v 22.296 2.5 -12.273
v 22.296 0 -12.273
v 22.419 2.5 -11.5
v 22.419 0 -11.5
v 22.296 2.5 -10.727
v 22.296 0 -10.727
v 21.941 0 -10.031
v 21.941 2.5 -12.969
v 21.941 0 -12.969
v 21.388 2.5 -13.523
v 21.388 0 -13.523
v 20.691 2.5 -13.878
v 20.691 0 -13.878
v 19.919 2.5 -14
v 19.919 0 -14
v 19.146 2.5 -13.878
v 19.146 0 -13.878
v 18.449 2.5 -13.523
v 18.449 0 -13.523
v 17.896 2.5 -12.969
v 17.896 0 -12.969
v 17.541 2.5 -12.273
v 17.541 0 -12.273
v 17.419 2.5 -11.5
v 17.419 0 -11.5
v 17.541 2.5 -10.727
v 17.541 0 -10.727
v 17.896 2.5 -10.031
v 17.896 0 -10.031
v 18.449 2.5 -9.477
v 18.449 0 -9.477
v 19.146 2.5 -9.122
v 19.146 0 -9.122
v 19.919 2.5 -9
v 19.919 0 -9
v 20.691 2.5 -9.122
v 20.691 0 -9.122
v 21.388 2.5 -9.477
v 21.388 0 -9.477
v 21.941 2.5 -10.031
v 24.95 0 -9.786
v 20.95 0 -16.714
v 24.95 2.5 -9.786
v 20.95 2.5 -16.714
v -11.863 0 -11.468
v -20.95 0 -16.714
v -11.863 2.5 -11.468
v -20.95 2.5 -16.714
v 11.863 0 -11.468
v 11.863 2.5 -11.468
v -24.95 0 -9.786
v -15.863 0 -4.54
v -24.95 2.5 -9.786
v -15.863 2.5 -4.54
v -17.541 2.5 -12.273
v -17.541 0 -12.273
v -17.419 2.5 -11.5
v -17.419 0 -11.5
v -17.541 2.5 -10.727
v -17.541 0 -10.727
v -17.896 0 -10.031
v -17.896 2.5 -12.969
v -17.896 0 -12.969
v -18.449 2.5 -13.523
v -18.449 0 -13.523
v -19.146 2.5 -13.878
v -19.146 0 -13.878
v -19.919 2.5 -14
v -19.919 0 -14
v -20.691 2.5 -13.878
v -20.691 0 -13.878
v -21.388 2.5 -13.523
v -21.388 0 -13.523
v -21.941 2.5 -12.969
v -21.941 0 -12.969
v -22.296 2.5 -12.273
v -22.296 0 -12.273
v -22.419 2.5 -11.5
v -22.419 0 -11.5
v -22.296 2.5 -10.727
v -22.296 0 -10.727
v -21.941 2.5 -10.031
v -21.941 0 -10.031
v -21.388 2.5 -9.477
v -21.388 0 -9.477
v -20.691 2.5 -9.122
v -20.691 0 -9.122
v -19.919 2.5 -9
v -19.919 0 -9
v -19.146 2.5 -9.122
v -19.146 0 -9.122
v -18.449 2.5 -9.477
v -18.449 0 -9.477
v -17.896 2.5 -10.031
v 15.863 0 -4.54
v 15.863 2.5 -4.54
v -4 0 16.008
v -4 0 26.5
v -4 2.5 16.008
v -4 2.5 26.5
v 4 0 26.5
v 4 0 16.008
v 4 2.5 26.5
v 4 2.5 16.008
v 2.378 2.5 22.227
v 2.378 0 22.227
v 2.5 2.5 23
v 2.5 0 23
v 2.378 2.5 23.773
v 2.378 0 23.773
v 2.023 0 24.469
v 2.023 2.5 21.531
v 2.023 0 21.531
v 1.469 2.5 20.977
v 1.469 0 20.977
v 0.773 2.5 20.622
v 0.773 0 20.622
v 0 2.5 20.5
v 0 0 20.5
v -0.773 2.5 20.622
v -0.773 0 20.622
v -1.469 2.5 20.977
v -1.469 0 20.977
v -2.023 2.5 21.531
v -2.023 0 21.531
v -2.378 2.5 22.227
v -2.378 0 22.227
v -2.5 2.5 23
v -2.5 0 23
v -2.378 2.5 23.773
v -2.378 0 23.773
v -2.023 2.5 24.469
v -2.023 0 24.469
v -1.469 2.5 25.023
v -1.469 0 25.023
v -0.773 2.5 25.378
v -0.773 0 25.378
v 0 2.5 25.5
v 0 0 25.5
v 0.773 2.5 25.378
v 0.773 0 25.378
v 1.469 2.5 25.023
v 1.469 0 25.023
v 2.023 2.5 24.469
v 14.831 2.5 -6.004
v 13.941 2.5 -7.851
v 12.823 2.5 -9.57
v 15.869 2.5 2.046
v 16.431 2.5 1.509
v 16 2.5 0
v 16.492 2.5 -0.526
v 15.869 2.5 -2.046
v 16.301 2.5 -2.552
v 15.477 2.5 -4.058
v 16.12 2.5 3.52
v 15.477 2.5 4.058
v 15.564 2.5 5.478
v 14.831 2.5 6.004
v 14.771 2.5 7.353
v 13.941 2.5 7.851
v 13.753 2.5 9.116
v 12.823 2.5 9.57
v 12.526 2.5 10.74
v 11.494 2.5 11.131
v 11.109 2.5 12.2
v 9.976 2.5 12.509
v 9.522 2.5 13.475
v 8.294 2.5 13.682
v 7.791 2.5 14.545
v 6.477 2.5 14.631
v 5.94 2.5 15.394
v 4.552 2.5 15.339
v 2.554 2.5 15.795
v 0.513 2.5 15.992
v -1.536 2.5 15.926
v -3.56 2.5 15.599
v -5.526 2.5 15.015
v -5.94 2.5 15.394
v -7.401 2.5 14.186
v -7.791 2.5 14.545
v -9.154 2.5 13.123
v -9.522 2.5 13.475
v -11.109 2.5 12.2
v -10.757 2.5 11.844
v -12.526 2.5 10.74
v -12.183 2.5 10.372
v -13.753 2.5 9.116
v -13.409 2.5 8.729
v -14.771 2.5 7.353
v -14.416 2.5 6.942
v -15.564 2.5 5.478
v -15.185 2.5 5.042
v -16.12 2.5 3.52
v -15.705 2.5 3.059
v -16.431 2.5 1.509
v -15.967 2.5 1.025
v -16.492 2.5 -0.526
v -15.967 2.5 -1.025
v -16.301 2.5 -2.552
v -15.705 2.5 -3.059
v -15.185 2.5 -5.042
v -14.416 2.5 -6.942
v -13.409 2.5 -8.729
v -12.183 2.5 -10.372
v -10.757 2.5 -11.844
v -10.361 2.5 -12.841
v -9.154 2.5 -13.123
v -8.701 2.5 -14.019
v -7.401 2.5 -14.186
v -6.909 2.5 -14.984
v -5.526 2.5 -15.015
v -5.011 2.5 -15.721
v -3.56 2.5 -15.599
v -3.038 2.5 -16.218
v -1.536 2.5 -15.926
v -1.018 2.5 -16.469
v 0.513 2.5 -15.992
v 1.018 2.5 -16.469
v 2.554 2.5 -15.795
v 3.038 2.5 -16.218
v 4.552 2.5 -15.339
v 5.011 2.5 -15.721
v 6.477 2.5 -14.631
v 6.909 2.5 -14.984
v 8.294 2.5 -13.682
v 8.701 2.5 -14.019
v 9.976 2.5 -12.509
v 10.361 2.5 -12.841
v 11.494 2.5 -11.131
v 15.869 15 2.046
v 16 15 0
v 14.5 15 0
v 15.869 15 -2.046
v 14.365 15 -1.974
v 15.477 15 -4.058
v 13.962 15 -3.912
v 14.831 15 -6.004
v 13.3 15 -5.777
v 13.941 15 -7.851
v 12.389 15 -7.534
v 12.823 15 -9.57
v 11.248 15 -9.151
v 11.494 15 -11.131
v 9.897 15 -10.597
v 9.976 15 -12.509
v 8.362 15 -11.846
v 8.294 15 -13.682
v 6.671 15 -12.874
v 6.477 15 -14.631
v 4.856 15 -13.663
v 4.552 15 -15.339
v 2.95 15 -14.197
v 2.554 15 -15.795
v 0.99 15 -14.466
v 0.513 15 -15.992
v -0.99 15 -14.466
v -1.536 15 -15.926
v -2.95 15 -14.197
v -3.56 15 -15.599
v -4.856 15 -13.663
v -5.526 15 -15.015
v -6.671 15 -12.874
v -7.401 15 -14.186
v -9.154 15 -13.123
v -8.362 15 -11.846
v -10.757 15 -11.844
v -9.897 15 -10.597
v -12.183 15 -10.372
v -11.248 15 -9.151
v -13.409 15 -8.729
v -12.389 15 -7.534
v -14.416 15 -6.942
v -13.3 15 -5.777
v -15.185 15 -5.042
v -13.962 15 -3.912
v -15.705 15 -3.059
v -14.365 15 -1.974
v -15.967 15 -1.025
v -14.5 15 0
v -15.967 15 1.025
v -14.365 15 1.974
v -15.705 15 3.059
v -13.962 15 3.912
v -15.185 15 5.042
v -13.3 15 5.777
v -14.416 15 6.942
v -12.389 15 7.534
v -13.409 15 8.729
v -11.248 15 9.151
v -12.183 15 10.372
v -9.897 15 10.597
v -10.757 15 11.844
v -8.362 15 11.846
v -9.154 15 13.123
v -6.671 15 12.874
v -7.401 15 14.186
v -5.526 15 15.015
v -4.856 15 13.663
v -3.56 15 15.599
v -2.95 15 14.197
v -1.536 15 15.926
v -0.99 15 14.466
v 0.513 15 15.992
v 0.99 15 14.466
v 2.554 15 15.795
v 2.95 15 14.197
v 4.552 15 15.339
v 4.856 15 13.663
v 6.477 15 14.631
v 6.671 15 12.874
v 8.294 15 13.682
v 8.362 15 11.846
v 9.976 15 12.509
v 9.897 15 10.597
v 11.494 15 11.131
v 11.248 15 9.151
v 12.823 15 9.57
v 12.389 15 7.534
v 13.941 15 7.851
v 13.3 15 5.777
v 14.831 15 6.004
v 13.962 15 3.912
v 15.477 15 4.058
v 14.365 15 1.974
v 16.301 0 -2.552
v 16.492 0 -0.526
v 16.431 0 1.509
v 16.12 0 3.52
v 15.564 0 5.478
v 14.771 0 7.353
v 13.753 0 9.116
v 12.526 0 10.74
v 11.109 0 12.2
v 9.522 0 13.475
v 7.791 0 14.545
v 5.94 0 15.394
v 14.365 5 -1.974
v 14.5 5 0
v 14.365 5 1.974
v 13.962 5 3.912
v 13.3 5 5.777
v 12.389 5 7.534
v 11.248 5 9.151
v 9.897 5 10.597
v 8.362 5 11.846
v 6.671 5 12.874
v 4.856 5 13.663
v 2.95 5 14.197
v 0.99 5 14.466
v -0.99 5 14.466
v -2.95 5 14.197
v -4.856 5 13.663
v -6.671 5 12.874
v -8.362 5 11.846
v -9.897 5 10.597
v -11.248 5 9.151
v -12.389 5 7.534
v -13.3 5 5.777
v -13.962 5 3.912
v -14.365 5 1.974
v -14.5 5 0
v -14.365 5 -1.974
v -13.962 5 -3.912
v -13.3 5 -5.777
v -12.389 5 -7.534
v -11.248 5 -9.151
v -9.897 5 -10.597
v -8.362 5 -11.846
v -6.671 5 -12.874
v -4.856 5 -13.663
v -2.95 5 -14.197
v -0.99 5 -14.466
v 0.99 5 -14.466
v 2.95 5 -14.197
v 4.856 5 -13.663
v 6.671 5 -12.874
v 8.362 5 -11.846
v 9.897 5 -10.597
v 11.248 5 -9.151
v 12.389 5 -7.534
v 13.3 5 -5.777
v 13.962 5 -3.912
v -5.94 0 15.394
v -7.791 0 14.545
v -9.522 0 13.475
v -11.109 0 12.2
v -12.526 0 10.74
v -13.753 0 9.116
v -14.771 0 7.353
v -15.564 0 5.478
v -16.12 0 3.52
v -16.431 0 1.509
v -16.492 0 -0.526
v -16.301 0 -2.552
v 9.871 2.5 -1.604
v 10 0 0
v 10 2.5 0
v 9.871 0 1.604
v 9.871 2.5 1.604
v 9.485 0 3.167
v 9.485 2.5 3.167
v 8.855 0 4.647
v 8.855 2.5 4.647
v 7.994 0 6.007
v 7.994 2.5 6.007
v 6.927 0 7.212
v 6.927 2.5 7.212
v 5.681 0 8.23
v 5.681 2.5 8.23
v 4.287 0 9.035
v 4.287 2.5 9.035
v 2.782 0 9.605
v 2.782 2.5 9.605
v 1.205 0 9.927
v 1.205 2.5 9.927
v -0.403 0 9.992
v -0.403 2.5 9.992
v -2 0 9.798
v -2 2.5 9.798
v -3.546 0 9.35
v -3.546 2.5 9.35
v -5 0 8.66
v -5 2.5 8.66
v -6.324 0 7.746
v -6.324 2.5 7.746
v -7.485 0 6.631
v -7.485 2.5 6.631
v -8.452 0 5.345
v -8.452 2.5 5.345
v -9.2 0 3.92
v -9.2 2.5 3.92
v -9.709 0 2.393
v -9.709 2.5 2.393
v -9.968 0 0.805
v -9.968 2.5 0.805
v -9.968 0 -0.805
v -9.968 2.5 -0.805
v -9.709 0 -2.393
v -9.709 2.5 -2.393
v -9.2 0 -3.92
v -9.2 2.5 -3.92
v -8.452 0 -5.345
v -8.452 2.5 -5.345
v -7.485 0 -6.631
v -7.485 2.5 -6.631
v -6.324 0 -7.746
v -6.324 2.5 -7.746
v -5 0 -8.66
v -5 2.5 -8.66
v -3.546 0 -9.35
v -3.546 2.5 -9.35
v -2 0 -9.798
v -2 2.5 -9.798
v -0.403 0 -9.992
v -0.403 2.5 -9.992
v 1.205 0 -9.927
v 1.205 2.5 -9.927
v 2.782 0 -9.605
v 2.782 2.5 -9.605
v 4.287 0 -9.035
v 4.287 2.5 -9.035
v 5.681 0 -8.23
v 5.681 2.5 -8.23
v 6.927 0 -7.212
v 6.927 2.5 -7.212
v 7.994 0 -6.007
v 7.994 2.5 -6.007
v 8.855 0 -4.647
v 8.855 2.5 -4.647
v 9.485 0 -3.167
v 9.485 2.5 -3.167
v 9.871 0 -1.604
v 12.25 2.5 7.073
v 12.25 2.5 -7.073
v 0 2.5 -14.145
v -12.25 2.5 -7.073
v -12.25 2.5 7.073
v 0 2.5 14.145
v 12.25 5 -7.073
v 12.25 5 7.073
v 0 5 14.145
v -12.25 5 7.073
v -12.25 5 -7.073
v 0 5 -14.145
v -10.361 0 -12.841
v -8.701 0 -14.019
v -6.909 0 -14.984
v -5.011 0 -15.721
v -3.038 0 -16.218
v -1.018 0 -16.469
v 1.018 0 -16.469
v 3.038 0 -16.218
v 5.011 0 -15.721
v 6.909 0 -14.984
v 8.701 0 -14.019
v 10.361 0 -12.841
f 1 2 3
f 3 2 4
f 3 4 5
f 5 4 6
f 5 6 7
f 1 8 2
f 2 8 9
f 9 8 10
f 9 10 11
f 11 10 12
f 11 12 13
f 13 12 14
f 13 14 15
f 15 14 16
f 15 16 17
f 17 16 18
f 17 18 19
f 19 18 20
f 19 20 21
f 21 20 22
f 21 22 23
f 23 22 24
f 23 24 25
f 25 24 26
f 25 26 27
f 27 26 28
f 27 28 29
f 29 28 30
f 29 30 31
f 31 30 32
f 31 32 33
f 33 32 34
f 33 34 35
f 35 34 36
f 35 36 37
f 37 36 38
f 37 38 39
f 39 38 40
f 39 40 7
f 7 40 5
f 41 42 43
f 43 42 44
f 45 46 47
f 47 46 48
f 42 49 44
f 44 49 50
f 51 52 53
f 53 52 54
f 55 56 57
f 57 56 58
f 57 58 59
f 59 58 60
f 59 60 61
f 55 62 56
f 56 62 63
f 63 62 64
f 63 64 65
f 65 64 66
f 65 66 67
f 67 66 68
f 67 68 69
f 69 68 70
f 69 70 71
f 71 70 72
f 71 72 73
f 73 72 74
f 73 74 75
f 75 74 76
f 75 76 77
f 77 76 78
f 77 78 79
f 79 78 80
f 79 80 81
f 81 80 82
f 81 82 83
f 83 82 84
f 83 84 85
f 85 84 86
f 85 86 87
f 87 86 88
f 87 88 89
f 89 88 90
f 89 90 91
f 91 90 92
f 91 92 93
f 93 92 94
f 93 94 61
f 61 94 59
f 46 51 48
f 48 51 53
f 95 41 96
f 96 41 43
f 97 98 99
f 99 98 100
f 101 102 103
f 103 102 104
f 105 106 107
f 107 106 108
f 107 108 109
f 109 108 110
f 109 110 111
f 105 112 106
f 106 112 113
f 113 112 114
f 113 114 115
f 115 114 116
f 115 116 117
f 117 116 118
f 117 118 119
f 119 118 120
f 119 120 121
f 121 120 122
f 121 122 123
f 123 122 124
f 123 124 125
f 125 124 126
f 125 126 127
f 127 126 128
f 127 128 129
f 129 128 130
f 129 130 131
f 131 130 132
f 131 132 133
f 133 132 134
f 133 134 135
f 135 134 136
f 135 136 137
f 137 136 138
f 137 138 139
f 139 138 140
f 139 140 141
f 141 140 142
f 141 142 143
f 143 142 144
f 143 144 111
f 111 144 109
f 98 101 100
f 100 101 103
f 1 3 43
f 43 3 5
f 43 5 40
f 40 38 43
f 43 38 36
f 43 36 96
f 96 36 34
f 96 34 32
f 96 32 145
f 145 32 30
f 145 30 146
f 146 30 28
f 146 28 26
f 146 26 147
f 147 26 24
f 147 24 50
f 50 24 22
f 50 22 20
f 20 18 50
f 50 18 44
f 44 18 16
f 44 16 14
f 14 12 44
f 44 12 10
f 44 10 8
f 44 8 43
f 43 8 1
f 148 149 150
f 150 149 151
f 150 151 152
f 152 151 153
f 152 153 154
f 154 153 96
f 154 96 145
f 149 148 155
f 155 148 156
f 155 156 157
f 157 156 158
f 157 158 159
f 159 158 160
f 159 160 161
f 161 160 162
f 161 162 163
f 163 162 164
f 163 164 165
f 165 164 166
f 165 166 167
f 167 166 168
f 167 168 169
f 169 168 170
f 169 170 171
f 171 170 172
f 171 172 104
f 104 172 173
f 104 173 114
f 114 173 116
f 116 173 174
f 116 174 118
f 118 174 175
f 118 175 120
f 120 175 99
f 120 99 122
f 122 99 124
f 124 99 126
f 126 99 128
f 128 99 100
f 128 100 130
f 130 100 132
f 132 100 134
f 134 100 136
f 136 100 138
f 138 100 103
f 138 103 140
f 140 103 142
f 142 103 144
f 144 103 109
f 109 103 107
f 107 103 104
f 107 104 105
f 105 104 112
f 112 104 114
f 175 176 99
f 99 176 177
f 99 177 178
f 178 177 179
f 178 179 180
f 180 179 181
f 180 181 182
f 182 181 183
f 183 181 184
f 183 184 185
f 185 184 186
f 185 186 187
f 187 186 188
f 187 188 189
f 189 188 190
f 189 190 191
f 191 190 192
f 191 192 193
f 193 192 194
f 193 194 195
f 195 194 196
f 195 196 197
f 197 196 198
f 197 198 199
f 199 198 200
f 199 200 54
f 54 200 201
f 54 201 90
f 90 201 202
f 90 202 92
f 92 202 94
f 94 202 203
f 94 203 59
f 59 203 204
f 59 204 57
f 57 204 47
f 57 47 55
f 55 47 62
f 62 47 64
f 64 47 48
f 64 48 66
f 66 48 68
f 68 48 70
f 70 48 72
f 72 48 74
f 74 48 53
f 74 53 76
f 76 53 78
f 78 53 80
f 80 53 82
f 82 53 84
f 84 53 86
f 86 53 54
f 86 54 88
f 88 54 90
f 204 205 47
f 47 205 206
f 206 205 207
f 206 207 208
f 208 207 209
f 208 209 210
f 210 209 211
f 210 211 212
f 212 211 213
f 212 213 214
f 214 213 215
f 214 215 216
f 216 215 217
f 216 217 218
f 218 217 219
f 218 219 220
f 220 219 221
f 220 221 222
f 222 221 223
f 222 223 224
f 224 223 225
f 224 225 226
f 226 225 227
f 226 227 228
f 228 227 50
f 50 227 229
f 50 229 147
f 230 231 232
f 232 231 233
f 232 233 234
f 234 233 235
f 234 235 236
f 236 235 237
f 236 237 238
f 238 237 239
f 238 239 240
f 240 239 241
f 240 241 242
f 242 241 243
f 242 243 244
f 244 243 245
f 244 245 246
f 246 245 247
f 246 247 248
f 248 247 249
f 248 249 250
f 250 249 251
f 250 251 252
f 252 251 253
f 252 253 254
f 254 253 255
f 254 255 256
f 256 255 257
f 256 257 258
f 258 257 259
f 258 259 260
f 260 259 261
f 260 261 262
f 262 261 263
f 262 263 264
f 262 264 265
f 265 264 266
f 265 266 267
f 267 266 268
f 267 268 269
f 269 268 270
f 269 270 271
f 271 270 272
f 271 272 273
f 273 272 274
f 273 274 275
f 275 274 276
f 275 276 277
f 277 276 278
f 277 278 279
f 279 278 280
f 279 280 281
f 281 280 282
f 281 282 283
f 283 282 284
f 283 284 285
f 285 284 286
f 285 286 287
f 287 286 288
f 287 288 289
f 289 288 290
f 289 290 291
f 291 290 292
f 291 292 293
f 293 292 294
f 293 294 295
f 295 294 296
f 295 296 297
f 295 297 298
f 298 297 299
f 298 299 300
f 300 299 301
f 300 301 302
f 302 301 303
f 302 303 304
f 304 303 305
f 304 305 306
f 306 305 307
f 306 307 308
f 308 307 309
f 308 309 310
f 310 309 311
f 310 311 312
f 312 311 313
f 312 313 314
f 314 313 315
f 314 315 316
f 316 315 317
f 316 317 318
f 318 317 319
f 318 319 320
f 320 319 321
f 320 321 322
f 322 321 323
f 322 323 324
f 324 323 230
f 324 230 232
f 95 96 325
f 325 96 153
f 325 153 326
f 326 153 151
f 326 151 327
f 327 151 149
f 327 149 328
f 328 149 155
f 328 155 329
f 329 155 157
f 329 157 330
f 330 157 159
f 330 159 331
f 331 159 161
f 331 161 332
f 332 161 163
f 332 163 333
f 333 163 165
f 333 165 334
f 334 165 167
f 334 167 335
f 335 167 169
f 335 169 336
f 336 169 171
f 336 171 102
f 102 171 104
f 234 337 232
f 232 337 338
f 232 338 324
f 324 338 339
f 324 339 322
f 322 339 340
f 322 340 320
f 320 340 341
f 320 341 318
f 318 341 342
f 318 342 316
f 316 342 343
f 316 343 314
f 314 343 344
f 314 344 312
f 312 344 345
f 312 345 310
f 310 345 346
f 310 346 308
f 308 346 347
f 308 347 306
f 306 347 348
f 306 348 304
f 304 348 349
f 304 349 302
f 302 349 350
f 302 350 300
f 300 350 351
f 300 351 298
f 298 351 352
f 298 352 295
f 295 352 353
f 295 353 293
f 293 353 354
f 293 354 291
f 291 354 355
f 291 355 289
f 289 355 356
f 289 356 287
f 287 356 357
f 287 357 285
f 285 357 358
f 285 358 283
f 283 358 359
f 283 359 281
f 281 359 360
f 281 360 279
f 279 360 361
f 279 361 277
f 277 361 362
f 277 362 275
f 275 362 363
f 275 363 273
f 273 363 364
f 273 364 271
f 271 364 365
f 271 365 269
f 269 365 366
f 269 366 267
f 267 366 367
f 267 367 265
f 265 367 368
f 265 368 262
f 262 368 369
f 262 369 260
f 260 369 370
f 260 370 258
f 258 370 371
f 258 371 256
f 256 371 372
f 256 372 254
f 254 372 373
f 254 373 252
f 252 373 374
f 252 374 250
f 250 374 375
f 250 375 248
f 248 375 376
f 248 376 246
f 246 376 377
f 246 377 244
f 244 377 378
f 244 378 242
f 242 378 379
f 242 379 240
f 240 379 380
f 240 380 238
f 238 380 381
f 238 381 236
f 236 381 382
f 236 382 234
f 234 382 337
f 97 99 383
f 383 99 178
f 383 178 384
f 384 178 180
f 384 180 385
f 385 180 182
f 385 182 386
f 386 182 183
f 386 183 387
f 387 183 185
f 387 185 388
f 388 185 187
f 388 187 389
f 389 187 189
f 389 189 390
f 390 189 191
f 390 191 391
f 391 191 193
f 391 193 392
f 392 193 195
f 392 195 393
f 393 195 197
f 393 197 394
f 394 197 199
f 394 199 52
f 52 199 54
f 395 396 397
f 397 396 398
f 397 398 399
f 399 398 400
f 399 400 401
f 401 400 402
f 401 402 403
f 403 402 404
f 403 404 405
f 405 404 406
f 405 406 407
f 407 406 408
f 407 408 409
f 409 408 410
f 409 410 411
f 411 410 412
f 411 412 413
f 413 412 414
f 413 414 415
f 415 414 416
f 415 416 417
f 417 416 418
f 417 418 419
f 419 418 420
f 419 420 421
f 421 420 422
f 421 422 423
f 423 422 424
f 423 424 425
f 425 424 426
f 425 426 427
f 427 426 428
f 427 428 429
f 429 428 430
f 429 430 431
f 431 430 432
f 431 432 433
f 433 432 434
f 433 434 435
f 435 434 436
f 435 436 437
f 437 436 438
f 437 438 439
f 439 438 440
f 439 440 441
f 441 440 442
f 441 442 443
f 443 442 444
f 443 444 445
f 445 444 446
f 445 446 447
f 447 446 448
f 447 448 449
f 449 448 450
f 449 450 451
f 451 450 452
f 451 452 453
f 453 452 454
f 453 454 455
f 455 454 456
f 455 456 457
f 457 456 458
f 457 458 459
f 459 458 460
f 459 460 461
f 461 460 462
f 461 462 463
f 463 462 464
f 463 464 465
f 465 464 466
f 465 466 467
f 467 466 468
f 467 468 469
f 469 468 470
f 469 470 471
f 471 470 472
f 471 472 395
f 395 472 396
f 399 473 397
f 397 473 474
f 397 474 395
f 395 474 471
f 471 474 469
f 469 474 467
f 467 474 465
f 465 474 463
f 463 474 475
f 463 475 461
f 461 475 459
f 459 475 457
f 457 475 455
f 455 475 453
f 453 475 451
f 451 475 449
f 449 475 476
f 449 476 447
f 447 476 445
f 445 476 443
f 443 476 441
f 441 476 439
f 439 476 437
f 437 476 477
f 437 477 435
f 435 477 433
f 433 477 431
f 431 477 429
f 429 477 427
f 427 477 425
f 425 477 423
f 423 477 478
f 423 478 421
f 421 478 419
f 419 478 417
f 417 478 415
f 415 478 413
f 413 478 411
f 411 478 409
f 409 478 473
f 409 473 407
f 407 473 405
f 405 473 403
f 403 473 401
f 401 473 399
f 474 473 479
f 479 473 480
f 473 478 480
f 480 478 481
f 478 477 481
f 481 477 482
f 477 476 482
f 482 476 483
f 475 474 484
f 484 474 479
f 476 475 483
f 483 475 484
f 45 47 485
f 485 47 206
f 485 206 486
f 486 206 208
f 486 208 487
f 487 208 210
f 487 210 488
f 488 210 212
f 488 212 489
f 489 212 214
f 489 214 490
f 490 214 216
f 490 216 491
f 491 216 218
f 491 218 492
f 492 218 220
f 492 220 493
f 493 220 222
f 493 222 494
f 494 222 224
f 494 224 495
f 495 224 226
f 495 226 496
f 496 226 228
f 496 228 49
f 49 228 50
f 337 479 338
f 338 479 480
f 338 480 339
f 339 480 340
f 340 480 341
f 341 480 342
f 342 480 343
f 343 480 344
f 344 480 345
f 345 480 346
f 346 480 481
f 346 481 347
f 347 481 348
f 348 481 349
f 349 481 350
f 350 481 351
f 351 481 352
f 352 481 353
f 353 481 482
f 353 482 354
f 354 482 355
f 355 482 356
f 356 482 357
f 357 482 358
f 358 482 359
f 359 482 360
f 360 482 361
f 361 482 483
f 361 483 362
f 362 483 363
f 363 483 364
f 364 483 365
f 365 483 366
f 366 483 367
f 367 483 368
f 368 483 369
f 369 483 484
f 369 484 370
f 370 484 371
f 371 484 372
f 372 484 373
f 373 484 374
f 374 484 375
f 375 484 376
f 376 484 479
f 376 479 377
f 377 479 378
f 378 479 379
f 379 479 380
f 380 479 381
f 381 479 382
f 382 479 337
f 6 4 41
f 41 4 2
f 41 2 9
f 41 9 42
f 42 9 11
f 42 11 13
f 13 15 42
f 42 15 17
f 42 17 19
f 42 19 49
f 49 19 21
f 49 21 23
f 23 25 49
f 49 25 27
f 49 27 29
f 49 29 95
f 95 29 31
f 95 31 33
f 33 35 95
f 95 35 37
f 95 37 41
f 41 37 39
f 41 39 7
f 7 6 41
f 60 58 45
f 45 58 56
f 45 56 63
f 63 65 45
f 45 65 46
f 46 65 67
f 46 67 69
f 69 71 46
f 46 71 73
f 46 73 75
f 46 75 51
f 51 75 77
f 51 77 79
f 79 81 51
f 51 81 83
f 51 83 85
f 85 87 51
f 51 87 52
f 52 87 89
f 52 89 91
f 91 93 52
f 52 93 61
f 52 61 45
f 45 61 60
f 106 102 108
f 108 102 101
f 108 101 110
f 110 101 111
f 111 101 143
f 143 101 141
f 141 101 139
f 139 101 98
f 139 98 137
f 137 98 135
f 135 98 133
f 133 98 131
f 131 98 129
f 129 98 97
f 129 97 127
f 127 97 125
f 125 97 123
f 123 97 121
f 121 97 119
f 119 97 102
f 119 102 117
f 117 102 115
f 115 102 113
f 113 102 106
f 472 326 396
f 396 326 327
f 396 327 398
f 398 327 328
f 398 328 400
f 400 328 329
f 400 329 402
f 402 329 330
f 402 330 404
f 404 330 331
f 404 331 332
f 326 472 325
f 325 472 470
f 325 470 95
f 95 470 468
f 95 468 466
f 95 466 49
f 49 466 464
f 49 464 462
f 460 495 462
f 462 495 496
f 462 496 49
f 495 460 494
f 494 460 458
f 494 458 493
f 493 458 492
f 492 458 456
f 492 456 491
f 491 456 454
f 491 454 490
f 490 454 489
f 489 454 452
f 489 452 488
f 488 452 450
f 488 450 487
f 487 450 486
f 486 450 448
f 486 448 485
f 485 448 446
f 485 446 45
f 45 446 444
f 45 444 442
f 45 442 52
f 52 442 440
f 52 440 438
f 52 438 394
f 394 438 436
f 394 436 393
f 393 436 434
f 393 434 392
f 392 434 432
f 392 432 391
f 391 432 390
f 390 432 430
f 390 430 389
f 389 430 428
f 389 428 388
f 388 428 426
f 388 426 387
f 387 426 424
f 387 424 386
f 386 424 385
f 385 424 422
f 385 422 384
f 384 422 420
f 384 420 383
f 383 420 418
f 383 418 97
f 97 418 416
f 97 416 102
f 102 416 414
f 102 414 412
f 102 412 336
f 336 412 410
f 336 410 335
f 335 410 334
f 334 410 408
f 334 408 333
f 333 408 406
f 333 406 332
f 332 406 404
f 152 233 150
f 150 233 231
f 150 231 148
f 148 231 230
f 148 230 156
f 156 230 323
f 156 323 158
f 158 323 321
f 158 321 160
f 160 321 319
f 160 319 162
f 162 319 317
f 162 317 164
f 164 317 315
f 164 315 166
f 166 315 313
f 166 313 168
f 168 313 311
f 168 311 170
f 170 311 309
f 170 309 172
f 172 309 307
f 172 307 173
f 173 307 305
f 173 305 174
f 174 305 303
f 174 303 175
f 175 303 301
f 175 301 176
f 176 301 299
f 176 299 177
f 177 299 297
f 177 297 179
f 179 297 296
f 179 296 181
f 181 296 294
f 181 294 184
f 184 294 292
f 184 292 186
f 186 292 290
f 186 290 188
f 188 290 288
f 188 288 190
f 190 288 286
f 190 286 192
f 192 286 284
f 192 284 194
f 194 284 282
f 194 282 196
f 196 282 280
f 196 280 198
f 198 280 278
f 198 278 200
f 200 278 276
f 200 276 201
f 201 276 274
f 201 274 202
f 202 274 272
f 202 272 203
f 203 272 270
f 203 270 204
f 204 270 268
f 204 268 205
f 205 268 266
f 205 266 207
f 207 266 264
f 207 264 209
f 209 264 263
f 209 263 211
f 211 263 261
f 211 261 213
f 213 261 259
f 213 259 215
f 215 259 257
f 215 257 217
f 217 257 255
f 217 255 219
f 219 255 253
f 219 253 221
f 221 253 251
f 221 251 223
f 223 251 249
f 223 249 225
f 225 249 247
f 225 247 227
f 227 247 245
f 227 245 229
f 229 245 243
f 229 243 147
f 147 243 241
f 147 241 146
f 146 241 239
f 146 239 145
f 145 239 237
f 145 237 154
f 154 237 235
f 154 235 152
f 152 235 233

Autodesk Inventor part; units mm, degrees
ref_plane "YZ Plane" through (0, 0, 0) normal (1, 0, 0) x (0, 1, 0)
ref_plane "XZ Plane" through (0, 0, 0) normal (0, 1, 0) x (-1, 0, 0)
ref_plane "XY Plane" through (0, 0, 0) normal (0, 0, 1) x (1, 0, 0)
sketch "Sketch1" plane through (0, 0, 0) normal (0, 1, 0) x (-1, 0, 0)
  line L0 (12.25, -7.0725) -> (0, -14.1451)
  line L1 (0, -14.1451) -> (-12.25, -7.0725)
  line L2 (-12.25, -7.0725) -> (-12.25, 7.0725)
  line L3 (-12.25, 7.0725) -> (0, 14.1451)
  line L4 (0, 14.1451) -> (12.25, 7.0725)
  line L5 (12.25, 7.0725) -> (12.25, -7.0725)
  circle A0 centre (0, 0) radius 16.5
  dimension "d0" = 12.25
  dimension "d1" = 33
extrude "Extrusion1" add sketch "Sketch1" along normal blind 5
sketch "Sketch2" plane through (0, 0, 0) normal (0, -1, 0) x (1, 0, 0)
  line L0 (0, 14.1451) -> (-12.25, 7.0725) projected
  line L1 (-12.25, 7.0725) -> (-12.25, -7.0725) projected
  line L2 (-12.25, -7.0725) -> (0, -14.1451) projected
  line L3 (0, -14.1451) -> (12.25, -7.0725) projected
  line L4 (12.25, -7.0725) -> (12.25, 7.0725) projected
  line L5 (12.25, 7.0725) -> (0, 14.1451) projected
  point P0 (0, 0)
extrude "Extrusion2" add sketch "Sketch2" against normal blind 2.5
sketch "Sketch3" plane through (0, 0, 0) normal (0, -1, 0) x (1, 0, 0)
  circle A0 centre (0, 0) radius 10
  dimension "d6" = 20
extrude "Extrusion3" cut sketch "Sketch3" against normal blind 2.5
sketch "Sketch4" plane through (0, 5, 0) normal (0, 1, 0) x (1, 0, 0)
  circle A0 centre (0, 0) radius 14.5
  circle A1 centre (0, 0) radius 16.5 projected
  dimension "d9" = 29
extrude "Extrusion4" add sketch "Sketch4" along normal blind 10
sketch "Sketch5" plane through (0, 0, 0) normal (0, -1, 0) x (1, 0, 0)
  circle A0 centre (0, 0) radius 16.5 projected
  arc A1 (14.2894, -8.25) -> (0, 16.5) centre (0, 0) ccw
  line L0 (0, 0) -> (14.2894, -8.25) construction
  line L1 (0, 0) -> (0, 16.5) construction
  arc A2 (0, 16.5) -> (-14.2894, -8.25) centre (0, 0) ccw
  line L2 (0, 0) -> (-14.2894, -8.25) construction
  line L3 (0, 0) -> (0, 16.5) construction
  circle A3 centre (0, 0) radius 14.5 projected
  line L4 (0, 14.5) -> (4, 14.5)
  line L5 (4, 14.5) -> (4, 26.5)
  line L6 (4, 26.5) -> (-4, 26.5)
  line L7 (0, 14.5) -> (-4, 14.5)
  line L8 (-4, 14.5) -> (-4, 26.5)
  line L9 (0, 16.5) -> (0, 23)
  circle A4 centre (0, 23) radius 2.5
  line L10 (-12.5574, -7.25) -> (-10.5574, -10.7141)
  line L11 (-12.5574, -7.25) -> (-14.5574, -3.7859)
  line L12 (-14.2894, -8.25) -> (-19.9186, -11.5)
  line L13 (-10.5574, -10.7141) -> (-20.9497, -16.7141)
  circle A5 centre (-19.9186, -11.5) radius 2.5
  line L14 (-24.9497, -9.7859) -> (-20.9497, -16.7141)
  line L15 (-14.5574, -3.7859) -> (-24.9497, -9.7859)
  line L16 (12.5574, -7.25) -> (14.5574, -3.7859)
  line L17 (12.5574, -7.25) -> (10.5574, -10.7141)
  line L18 (14.2894, -8.25) -> (19.9186, -11.5)
  line L19 (14.5574, -3.7859) -> (24.9497, -9.7859)
  circle A6 centre (19.9186, -11.5) radius 2.5
  line L20 (20.9497, -16.7141) -> (24.9497, -9.7859)
  line L21 (10.5574, -10.7141) -> (20.9497, -16.7141)
  point P0 (11.8632, -11.468)
  point P1 (15.8632, -4.5398)
  point P2 (-15.8632, -4.5398)
  point P3 (-11.8632, -11.468)
  point P4 (4, 16.0078)
  point P5 (-4, 16.0078)
  dimension "d12" = 120
  dimension "d13" = 120
  dimension "d14" = 4
  dimension "d15" = 12
  dimension "d16" = 8
  dimension "d17" = 4
  dimension "d18" = 6.5
  dimension "d19" = 5
  dimension "d22" = 360
extrude "Extrusion5" add sketch "Sketch5" against normal blind 2.5 contours A0 L8 L6 L5 | L19 L20 L21 A0 | A0 L13 L14 L15
sketch "Sketch6" plane through (0, 15, 0) normal (0, 1, 0) x (1, 0, 0)
  circle A0 centre (0, 0) radius 16
  circle A1 centre (0, 0) radius 17.8656
  dimension "d31" = 32
extrude "Extrusion6" cut sketch "Sketch6" against normal up to surface (12.5 mm away)
properties part number "receptor_manguera"
